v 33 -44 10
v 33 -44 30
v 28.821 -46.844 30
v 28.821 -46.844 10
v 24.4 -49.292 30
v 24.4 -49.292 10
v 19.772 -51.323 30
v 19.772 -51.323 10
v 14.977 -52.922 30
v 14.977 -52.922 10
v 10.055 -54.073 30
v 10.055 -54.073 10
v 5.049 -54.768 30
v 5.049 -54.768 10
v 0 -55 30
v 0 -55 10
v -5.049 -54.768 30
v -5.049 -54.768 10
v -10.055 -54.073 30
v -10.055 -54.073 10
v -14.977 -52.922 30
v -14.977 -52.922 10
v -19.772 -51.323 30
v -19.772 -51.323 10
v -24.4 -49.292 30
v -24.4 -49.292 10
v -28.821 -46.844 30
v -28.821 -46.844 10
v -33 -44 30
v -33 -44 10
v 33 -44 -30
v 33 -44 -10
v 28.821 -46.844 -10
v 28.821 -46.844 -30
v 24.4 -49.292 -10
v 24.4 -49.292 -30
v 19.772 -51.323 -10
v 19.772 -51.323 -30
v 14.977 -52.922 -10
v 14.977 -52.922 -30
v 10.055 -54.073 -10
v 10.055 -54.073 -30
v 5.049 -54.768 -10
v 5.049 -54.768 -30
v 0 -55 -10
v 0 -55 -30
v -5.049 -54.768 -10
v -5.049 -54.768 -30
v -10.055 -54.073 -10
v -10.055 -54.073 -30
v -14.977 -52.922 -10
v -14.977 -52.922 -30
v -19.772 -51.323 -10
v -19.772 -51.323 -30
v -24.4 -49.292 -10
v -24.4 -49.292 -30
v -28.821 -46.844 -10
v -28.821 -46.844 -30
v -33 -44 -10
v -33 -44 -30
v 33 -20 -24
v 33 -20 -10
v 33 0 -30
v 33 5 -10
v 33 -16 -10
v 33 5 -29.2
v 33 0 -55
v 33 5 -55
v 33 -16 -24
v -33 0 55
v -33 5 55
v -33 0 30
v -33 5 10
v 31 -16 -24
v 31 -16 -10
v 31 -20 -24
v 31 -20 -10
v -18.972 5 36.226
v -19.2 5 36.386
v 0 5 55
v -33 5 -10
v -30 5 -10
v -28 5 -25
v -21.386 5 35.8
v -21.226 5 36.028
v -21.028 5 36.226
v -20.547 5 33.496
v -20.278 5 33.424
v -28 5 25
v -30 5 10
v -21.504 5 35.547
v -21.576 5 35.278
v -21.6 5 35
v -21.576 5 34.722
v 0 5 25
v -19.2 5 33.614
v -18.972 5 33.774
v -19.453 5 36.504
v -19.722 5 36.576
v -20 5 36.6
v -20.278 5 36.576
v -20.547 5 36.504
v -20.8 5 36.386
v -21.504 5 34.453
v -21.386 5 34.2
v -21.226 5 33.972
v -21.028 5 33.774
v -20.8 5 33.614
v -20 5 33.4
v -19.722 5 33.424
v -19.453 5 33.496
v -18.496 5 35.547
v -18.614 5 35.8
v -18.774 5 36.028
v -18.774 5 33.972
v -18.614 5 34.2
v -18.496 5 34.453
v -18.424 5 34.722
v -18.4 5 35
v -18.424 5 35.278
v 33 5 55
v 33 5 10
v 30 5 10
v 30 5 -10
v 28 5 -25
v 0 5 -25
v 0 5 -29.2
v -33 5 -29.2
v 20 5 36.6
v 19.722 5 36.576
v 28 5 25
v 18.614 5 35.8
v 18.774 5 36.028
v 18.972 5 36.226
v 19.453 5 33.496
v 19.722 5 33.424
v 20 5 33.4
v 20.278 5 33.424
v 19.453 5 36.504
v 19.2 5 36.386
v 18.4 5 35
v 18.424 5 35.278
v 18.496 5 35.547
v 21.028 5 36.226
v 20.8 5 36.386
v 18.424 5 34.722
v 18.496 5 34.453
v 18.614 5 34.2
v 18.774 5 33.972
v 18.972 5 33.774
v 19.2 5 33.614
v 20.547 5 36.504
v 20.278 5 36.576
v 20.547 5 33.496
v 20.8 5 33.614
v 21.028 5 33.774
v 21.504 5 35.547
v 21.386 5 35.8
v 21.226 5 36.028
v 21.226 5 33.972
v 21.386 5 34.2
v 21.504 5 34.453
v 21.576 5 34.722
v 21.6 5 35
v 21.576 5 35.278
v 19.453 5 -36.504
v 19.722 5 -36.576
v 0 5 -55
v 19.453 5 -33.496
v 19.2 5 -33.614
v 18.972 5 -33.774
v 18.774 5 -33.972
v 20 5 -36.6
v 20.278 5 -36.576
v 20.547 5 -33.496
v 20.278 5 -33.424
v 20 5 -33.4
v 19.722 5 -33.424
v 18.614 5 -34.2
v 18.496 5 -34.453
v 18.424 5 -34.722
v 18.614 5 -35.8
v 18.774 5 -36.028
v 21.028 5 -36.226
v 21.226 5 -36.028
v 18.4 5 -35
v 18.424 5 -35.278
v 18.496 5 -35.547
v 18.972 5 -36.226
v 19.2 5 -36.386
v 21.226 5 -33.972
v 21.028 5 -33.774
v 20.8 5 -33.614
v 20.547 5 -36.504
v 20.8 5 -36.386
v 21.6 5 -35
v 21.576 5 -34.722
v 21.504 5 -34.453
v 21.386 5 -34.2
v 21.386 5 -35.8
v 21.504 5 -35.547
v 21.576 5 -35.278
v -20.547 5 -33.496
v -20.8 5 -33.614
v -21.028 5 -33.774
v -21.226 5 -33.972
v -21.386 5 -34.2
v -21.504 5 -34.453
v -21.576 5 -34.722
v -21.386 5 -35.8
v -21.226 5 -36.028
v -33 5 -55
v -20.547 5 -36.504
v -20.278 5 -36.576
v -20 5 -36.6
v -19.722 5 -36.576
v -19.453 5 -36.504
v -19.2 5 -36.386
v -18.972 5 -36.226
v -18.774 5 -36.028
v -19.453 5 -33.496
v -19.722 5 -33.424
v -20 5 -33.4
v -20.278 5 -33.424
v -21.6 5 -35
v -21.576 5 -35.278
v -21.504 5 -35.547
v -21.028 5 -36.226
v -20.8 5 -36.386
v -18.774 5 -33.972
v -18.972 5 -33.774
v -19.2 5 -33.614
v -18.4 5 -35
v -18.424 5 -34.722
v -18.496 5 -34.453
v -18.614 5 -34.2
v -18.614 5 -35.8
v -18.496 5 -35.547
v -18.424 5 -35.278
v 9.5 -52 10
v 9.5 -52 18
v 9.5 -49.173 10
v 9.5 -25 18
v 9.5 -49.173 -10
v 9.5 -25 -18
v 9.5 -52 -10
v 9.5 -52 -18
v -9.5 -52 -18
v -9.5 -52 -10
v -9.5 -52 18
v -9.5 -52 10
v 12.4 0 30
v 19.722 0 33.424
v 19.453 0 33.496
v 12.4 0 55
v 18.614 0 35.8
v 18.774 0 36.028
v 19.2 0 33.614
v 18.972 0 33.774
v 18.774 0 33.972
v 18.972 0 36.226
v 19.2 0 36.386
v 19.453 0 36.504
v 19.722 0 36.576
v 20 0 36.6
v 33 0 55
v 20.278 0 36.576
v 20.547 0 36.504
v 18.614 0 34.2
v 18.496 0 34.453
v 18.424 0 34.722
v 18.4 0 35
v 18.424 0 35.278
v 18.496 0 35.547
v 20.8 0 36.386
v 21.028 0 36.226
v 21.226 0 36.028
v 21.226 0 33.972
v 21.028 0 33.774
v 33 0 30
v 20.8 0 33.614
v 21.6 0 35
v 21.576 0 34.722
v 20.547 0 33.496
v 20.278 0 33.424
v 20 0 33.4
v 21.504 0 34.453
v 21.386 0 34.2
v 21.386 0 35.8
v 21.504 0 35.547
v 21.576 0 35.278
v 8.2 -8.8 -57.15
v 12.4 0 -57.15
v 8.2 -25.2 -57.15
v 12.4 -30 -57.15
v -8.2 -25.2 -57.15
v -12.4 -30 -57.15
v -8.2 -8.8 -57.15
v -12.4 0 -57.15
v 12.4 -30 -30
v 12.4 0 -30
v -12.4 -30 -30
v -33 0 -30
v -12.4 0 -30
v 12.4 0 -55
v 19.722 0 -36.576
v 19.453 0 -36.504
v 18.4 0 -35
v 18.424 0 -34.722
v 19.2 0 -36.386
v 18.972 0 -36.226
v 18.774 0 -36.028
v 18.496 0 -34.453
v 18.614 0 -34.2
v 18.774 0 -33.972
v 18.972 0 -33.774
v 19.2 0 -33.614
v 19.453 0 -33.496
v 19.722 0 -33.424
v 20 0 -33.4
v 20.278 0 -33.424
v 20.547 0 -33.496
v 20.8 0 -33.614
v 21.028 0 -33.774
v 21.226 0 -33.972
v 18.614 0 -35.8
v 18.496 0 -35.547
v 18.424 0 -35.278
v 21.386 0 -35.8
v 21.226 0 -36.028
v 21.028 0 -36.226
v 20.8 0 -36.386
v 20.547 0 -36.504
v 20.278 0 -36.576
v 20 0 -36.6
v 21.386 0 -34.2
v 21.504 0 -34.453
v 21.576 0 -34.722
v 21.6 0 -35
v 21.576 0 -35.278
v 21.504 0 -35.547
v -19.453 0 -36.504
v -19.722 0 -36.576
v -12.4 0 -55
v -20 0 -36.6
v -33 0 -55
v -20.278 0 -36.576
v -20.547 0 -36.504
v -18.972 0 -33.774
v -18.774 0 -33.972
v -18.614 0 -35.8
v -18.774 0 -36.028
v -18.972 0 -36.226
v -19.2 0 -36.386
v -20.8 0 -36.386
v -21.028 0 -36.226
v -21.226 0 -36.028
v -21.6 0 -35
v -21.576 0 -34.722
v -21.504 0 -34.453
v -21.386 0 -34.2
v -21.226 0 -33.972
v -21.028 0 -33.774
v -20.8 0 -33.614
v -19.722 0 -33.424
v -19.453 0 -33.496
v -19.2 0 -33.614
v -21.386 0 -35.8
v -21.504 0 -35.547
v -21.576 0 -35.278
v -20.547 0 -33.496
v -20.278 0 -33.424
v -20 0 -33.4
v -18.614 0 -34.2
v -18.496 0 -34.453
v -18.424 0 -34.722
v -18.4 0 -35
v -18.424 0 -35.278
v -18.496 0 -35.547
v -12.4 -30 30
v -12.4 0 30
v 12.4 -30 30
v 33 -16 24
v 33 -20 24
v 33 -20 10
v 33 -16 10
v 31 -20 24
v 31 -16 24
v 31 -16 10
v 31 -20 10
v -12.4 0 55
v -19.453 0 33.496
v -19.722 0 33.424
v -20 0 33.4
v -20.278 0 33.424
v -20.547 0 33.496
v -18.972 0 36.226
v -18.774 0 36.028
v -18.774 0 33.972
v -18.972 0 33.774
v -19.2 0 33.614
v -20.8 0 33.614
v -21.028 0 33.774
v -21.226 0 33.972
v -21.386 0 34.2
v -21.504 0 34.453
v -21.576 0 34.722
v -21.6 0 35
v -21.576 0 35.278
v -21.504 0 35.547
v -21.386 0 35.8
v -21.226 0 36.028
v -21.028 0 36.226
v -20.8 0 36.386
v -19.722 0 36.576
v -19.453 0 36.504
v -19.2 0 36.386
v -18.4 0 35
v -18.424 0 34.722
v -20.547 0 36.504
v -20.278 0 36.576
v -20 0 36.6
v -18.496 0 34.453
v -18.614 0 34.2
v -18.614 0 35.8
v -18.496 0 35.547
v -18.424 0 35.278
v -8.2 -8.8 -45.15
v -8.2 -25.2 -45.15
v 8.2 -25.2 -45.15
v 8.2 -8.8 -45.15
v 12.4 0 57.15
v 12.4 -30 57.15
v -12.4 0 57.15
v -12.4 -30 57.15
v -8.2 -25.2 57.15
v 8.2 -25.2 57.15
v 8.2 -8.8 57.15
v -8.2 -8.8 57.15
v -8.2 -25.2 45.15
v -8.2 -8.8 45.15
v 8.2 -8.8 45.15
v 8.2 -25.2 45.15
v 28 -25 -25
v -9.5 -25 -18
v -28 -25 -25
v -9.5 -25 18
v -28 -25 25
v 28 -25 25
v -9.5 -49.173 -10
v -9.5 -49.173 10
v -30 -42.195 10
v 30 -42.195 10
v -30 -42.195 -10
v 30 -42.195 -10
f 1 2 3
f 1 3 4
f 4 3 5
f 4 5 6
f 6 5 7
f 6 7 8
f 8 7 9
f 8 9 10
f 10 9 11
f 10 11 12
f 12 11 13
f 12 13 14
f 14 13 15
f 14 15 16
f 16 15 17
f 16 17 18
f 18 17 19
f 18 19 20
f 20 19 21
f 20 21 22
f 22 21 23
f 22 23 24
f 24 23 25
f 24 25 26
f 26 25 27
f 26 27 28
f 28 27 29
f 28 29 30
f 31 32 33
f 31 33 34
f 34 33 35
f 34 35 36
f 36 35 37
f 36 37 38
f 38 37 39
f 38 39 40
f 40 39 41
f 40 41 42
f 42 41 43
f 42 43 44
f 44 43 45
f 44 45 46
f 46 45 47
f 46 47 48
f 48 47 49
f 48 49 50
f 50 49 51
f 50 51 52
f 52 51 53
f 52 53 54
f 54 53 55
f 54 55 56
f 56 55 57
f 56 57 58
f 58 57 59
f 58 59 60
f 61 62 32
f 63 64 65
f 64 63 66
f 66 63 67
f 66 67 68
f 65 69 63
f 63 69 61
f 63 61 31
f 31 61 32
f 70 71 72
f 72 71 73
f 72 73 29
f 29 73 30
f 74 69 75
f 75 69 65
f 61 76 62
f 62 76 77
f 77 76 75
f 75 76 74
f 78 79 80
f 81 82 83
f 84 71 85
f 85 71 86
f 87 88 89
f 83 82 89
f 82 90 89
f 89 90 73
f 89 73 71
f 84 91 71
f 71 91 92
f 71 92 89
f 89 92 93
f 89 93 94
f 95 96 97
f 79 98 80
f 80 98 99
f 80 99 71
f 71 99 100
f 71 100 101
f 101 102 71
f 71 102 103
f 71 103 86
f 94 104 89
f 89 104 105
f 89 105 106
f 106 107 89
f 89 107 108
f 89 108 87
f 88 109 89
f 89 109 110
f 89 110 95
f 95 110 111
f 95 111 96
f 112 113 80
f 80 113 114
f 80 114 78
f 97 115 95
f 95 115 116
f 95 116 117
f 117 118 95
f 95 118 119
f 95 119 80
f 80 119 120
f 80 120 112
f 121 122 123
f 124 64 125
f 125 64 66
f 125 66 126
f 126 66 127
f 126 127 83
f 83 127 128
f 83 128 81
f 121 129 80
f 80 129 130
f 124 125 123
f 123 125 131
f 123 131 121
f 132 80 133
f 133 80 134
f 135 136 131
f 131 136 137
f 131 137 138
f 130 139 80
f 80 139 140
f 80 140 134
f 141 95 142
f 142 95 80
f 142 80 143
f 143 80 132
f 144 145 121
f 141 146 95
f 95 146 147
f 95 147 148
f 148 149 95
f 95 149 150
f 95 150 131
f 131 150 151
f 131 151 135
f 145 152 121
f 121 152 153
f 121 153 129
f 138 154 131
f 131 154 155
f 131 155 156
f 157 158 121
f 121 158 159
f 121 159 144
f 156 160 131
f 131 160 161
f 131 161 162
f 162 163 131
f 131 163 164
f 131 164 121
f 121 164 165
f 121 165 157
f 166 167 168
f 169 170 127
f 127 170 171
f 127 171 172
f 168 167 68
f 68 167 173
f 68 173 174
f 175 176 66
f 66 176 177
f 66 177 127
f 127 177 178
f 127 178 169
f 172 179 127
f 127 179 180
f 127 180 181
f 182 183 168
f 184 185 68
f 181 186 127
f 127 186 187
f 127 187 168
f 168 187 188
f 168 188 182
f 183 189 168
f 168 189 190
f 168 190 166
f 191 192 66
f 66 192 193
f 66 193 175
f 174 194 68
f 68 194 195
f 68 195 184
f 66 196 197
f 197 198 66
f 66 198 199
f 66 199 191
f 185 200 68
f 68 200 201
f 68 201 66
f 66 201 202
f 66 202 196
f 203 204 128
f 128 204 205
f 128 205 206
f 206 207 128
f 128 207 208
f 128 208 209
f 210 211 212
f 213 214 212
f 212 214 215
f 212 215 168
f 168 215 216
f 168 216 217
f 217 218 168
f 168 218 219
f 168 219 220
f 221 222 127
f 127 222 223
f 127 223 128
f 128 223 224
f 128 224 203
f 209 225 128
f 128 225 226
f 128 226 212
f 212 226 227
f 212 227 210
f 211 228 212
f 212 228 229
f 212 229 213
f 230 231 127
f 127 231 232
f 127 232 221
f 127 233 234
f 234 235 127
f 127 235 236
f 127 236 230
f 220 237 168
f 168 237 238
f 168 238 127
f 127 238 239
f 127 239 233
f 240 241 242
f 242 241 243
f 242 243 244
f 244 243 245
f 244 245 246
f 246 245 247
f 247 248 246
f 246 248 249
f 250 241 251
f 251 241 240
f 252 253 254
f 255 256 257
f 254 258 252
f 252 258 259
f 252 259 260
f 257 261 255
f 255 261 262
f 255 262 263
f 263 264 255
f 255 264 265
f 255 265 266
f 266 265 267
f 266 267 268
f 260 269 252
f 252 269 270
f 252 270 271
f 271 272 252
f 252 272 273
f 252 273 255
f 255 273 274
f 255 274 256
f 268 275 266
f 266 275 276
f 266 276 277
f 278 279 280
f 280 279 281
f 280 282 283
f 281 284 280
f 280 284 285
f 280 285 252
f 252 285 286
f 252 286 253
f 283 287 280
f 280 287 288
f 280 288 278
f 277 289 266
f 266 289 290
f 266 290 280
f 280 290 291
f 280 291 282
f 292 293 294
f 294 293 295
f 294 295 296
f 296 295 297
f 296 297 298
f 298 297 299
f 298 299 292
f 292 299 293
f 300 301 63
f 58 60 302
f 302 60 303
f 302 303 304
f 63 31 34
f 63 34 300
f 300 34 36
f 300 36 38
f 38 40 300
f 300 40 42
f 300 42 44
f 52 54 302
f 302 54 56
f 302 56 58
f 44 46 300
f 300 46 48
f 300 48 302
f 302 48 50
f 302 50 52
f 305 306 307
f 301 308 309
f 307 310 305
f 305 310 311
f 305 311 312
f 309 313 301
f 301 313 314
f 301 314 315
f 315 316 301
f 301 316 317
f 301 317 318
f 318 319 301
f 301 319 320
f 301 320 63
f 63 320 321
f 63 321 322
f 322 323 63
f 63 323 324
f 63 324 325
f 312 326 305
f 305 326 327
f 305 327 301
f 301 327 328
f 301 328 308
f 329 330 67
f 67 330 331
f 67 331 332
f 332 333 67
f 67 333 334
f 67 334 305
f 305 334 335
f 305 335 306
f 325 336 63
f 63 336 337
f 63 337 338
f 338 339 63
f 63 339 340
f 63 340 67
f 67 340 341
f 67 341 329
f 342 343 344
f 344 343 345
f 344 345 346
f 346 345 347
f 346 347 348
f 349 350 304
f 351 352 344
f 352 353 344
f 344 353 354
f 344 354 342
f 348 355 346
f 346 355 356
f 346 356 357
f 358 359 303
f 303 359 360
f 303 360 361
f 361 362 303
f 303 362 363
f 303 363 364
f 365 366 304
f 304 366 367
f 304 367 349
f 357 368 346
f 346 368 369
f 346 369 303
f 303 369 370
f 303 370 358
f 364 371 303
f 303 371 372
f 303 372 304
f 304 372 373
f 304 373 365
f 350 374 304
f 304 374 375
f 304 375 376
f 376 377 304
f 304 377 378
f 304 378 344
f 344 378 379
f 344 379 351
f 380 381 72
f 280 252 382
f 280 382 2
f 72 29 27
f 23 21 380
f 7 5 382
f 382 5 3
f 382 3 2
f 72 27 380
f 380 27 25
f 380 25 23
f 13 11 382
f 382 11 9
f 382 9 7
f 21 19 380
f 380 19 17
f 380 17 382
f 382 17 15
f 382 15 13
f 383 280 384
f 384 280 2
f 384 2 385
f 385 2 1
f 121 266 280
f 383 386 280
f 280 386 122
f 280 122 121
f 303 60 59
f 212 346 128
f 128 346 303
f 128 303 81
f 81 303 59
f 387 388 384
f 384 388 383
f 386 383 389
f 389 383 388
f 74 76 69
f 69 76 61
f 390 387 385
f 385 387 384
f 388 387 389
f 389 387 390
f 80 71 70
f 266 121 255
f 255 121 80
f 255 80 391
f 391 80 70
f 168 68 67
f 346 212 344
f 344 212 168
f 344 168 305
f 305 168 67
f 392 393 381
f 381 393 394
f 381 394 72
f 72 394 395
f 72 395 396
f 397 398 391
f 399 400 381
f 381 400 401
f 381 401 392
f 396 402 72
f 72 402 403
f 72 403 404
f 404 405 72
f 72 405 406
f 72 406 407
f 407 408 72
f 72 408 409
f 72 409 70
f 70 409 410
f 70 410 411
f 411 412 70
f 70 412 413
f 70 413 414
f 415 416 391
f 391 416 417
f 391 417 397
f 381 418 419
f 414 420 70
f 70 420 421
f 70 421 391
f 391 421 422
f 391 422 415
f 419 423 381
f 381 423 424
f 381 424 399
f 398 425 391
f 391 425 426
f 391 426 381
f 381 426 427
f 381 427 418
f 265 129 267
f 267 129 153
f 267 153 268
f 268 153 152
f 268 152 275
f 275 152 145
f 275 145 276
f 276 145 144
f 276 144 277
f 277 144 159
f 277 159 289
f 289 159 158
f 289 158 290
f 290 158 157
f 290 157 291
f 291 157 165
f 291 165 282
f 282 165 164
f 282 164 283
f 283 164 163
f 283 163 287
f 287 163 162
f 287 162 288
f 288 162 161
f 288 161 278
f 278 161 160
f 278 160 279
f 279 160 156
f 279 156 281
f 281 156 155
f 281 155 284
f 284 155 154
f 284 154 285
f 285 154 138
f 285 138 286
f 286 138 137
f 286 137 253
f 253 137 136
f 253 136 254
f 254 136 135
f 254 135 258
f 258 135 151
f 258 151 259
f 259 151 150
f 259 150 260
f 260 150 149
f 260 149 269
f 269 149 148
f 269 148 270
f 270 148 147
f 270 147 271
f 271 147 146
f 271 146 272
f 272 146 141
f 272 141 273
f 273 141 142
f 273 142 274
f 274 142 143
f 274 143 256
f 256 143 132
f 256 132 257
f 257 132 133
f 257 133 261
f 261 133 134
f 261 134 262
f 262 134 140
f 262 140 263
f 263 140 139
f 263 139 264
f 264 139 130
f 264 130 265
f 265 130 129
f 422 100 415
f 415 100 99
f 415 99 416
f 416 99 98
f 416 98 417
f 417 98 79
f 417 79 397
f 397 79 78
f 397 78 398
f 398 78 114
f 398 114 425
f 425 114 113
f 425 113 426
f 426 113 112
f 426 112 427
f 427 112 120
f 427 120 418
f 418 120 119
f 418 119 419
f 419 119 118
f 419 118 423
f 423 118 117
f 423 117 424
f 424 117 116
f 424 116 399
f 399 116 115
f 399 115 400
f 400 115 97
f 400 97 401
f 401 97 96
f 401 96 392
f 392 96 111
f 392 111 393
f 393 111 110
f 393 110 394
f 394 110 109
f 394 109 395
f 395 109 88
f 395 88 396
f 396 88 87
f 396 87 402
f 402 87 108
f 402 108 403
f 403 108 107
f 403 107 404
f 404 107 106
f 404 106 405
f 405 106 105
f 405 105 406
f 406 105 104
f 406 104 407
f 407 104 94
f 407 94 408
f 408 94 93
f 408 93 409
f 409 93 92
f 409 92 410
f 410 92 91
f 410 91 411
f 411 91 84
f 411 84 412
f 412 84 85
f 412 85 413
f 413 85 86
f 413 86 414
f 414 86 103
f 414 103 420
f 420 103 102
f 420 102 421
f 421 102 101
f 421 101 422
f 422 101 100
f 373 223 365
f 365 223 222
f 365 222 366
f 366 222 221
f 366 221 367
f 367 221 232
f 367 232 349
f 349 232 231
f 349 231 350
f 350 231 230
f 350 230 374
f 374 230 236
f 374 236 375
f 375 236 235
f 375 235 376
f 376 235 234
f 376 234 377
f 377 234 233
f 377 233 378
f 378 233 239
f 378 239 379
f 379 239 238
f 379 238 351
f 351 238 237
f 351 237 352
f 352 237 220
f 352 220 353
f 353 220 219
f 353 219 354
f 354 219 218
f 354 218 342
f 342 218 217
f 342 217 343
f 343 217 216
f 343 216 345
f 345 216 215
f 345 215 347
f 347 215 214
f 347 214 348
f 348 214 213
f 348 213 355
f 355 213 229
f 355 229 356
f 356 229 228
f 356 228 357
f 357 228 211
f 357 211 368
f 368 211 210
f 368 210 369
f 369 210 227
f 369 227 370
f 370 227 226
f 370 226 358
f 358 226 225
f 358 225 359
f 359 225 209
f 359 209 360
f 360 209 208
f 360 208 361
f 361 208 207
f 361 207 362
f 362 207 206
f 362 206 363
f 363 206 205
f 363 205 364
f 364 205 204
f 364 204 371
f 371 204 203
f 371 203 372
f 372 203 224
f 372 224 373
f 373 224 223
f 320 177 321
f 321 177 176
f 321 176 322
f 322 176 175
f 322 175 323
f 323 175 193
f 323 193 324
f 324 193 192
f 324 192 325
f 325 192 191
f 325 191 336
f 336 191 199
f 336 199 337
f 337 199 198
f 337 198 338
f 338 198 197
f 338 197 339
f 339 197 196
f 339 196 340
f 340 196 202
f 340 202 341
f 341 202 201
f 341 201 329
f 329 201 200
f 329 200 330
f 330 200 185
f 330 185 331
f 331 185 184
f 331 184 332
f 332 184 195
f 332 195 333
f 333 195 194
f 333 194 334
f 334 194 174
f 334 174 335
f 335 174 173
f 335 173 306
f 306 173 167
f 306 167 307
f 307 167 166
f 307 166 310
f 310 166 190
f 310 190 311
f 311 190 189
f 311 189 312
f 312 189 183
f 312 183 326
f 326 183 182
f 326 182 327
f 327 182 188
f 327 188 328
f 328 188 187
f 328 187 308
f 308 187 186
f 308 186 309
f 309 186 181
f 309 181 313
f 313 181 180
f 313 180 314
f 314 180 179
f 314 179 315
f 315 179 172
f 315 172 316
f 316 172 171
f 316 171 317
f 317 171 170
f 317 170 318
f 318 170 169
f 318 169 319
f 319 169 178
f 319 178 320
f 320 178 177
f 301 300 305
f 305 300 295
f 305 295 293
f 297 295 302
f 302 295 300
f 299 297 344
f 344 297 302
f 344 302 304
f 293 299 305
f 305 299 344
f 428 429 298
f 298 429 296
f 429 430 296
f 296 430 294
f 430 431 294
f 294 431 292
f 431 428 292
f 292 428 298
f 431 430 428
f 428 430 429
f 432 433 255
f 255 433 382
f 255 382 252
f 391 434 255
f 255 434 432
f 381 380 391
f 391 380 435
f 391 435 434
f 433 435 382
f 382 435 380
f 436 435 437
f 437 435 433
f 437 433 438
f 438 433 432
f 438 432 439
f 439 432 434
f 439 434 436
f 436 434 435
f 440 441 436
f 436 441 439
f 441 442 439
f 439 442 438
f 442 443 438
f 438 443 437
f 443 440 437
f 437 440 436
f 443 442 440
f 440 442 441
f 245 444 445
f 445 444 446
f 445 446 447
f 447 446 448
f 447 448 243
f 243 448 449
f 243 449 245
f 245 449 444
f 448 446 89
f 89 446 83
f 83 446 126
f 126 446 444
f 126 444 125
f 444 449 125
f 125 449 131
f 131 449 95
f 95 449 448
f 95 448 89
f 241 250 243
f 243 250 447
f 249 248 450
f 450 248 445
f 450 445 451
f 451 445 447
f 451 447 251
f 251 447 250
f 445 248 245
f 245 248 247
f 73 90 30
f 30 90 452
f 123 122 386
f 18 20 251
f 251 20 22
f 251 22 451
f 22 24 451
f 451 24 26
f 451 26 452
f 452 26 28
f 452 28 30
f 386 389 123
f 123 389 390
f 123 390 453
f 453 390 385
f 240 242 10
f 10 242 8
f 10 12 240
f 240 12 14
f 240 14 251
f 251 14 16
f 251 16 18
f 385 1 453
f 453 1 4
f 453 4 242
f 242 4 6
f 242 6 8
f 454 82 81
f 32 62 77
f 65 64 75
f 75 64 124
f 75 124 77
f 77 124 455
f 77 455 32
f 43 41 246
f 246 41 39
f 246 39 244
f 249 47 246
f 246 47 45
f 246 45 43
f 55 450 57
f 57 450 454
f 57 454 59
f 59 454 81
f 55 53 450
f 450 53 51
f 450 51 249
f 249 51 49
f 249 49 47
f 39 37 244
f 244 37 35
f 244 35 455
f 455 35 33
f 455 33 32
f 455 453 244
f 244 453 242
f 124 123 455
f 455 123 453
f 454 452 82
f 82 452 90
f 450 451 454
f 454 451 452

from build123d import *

# Parameters (mm, degrees)
BOSS_EXTRUDE1_DEPTH      = 30
BOSS_EXTRUDE1_DEPTH_BACK = 30
CUT_EXTRUDE1_DEPTH       = 18
CUT_EXTRUDE1_DEPTH_BACK  = 18
SKETCH2_W                = 19
SKETCH2_H                = 52
SKETCH3_W                = 21.854352608
SKETCH3_H                = 45
CUT_EXTRUDE2_DEPTH       = 99.234413522
SKETCH4_R                = 1.6
CUT_EXTRUDE3_DEPTH       = 84.366660003
SKETCH6_W                = 48
SKETCH6_H                = 4
CUT_EXTRUDE5_DEPTH       = 2
SKETCH9_W                = 22
SKETCH9_H                = 60
CUT_EXTRUDE7_DEPTH       = 84.366660003
SKETCH10_W               = 66
SKETCH10_H               = 110
SKETCH10_W_2             = 19
SKETCH10_H_2             = 36
BOSS_EXTRUDE2_DEPTH      = 5
SKETCH11_R               = 1.6
CUT_EXTRUDE8_DEPTH       = 88.82938005
SKETCH13_W               = 24.8
SKETCH13_H               = 30
BOSS_EXTRUDE3_DEPTH      = 27.15
SKETCH14_W               = 16.4
SKETCH14_H               = 16.4
CUT_EXTRUDE9_DEPTH       = 12
SKETCH15_W               = 56
SKETCH15_H               = 50
CUT_EXTRUDE10_DEPTH      = 30
SKETCH16_W               = 19
SKETCH16_H               = 20
CUT_EXTRUDE11_DEPTH      = 45
CUT_EXTRUDE19_DEPTH      = 10
CUT_EXTRUDE19_DEPTH_BACK = 10


with BuildPart() as part:
    # Sketch1 → Boss-Extrude1 (new, two sides: drawn at the far end of the back side and taken through both)
    with BuildSketch(Plane.XY.offset(-BOSS_EXTRUDE1_DEPTH_BACK)):
        with BuildLine():
            Line((55, 0), (0, 0))
            Line((0, 0), (-55, 0))
            ThreePointArc((-55, 0), (0, -55), (55, 0))
        make_face()
    extrude(amount=BOSS_EXTRUDE1_DEPTH + BOSS_EXTRUDE1_DEPTH_BACK)

    # Sketch2 → Cut-Extrude1 (cut, two sides: drawn at the far end of the back side and taken through both)
    with BuildSketch(Plane.XY.offset(-CUT_EXTRUDE1_DEPTH_BACK)):
        with Locations((0, -26)):
            Rectangle(SKETCH2_W, SKETCH2_H)
    extrude(amount=CUT_EXTRUDE1_DEPTH + CUT_EXTRUDE1_DEPTH_BACK, mode=Mode.SUBTRACT)

    # Sketch3 → Cut-Extrude2 (cut, through all)
    with BuildSketch(Plane.XY.offset(30)):
        with Locations((-43.927176304, -26.5)):
            Rectangle(SKETCH3_W, SKETCH3_H)
        with Locations((43.927176304, -26.5)):
            Rectangle(SKETCH3_W, SKETCH3_H)
    extrude(amount=-CUT_EXTRUDE2_DEPTH, mode=Mode.SUBTRACT)

    # Sketch4 → Cut-Extrude3 (cut, through all)
    with BuildSketch(Plane(origin=(0, 0, 0), x_dir=(1, 0, 0), z_dir=(0, 1, 0))):
        with Locations((45, 20)):
            Circle(SKETCH4_R)
        with Locations((45, -20)):
            Circle(SKETCH4_R)
        with Locations((-45, -20)):
            Circle(SKETCH4_R)
        with Locations((-45, 20)):
            Circle(SKETCH4_R)
    extrude(amount=-CUT_EXTRUDE3_DEPTH, mode=Mode.SUBTRACT)

    # Sketch6 → Cut-Extrude5 (cut)
    with BuildSketch(Plane(origin=(33, 0, 0), x_dir=(0, 0, -1), z_dir=(1, 0, 0))):
        with Locations((0, -18)):
            Rectangle(SKETCH6_W, SKETCH6_H)
    extrude(amount=-CUT_EXTRUDE5_DEPTH, mode=Mode.SUBTRACT)

    # Sketch9 → Cut-Extrude7 (cut, through all)
    with BuildSketch(Plane(origin=(0, 0, 0), x_dir=(1, 0, 0), z_dir=(0, 1, 0))):
        with Locations((-44, 0)):
            Rectangle(SKETCH9_W, SKETCH9_H)
        with Locations((44, 0)):
            Rectangle(SKETCH9_W, SKETCH9_H)
    extrude(amount=-CUT_EXTRUDE7_DEPTH, mode=Mode.SUBTRACT)

    # Sketch10 → Boss-Extrude2 (add)
    with BuildSketch(Plane(origin=(0, 0, 0), x_dir=(1, 0, 0), z_dir=(0, 1, 0))):
        Rectangle(SKETCH10_W, SKETCH10_H)
        Rectangle(SKETCH10_W_2, SKETCH10_H_2, mode=Mode.SUBTRACT)
    extrude(amount=BOSS_EXTRUDE2_DEPTH)

    # Sketch11 → Cut-Extrude8 (cut, through all)
    with BuildSketch(Plane(origin=(0, 5, 0), x_dir=(1, 0, 0), z_dir=(0, 1, 0))):
        with Locations((-20, 35)):
            Circle(SKETCH11_R)
        with Locations((20, 35)):
            Circle(SKETCH11_R)
        with Locations((-20, -35)):
            Circle(SKETCH11_R)
        with Locations((20, -35)):
            Circle(SKETCH11_R)
    extrude(amount=-CUT_EXTRUDE8_DEPTH, mode=Mode.SUBTRACT)

    # Sketch13 → Boss-Extrude3 (add)
    with BuildSketch(Plane(origin=(0, 0, -30), x_dir=(-1, 0, 0), z_dir=(0, 0, -1))):
        with Locations((0, -15)):
            Rectangle(SKETCH13_W, SKETCH13_H)
    boss_extrude3 = extrude(amount=BOSS_EXTRUDE3_DEPTH)

    # Sketch14 → Cut-Extrude9 (cut)
    with BuildSketch(Plane(origin=(0, 0, -57.15), x_dir=(-1, 0, 0), z_dir=(0, 0, -1))):
        with Locations((0, -17)):
            Rectangle(SKETCH14_W, SKETCH14_H)
    cut_extrude9 = extrude(amount=-CUT_EXTRUDE9_DEPTH, mode=Mode.SUBTRACT)

    # Mirror2: Boss-Extrude3 across plane
    add(boss_extrude3.mirror(Plane(origin=(0, 0, 0), x_dir=(1, 0, 0), z_dir=(0, 0, -1))))

    # Mirror3: Cut-Extrude9 across plane
    add(cut_extrude9.mirror(Plane(origin=(0, 0, 0), x_dir=(1, 0, 0), z_dir=(0, 0, -1))), mode=Mode.SUBTRACT)

    # Sketch15 → Cut-Extrude10 (cut)
    with BuildSketch(Plane(origin=(0, 5, 0), x_dir=(1, 0, 0), z_dir=(0, 1, 0))):
        Rectangle(SKETCH15_W, SKETCH15_H)
    extrude(amount=-CUT_EXTRUDE10_DEPTH, mode=Mode.SUBTRACT)

    # Sketch16 → Cut-Extrude11 (cut)
    with BuildSketch(Plane(origin=(0, -52, 0), x_dir=(1, 0, 0), z_dir=(0, 1, 0))):
        Rectangle(SKETCH16_W, SKETCH16_H)
    extrude(amount=-CUT_EXTRUDE11_DEPTH, mode=Mode.SUBTRACT)

    # Sketch18 → Cut-Extrude19 (cut, two sides: drawn at the far end of the back side and taken through both)
    with BuildSketch(Plane(origin=(0, 0, 0), x_dir=(-1, 0, 0), z_dir=(0, 0, -1)).offset(-CUT_EXTRUDE19_DEPTH_BACK)):
        Polygon((9.5, -49.173332923), (30, -42.194609519), (30, -41.173332923), (30, 5), (33, 5), (33, -41.173332923), (33, -54.173332923), (29.677482196, -54.173332923), (9.5, -54.173332923), align=None)
        Polygon((-30, -41.173332923), (-30, -42.194609519), (-9.5, -49.173332923), (-9.5, -54.173332923), (-29.677482196, -54.173332923), (-33, -54.173332923), (-33, -41.173332923), (-33, 5), (-30, 5), align=None)
    extrude(amount=CUT_EXTRUDE19_DEPTH + CUT_EXTRUDE19_DEPTH_BACK, mode=Mode.SUBTRACT)


solid = part.part
